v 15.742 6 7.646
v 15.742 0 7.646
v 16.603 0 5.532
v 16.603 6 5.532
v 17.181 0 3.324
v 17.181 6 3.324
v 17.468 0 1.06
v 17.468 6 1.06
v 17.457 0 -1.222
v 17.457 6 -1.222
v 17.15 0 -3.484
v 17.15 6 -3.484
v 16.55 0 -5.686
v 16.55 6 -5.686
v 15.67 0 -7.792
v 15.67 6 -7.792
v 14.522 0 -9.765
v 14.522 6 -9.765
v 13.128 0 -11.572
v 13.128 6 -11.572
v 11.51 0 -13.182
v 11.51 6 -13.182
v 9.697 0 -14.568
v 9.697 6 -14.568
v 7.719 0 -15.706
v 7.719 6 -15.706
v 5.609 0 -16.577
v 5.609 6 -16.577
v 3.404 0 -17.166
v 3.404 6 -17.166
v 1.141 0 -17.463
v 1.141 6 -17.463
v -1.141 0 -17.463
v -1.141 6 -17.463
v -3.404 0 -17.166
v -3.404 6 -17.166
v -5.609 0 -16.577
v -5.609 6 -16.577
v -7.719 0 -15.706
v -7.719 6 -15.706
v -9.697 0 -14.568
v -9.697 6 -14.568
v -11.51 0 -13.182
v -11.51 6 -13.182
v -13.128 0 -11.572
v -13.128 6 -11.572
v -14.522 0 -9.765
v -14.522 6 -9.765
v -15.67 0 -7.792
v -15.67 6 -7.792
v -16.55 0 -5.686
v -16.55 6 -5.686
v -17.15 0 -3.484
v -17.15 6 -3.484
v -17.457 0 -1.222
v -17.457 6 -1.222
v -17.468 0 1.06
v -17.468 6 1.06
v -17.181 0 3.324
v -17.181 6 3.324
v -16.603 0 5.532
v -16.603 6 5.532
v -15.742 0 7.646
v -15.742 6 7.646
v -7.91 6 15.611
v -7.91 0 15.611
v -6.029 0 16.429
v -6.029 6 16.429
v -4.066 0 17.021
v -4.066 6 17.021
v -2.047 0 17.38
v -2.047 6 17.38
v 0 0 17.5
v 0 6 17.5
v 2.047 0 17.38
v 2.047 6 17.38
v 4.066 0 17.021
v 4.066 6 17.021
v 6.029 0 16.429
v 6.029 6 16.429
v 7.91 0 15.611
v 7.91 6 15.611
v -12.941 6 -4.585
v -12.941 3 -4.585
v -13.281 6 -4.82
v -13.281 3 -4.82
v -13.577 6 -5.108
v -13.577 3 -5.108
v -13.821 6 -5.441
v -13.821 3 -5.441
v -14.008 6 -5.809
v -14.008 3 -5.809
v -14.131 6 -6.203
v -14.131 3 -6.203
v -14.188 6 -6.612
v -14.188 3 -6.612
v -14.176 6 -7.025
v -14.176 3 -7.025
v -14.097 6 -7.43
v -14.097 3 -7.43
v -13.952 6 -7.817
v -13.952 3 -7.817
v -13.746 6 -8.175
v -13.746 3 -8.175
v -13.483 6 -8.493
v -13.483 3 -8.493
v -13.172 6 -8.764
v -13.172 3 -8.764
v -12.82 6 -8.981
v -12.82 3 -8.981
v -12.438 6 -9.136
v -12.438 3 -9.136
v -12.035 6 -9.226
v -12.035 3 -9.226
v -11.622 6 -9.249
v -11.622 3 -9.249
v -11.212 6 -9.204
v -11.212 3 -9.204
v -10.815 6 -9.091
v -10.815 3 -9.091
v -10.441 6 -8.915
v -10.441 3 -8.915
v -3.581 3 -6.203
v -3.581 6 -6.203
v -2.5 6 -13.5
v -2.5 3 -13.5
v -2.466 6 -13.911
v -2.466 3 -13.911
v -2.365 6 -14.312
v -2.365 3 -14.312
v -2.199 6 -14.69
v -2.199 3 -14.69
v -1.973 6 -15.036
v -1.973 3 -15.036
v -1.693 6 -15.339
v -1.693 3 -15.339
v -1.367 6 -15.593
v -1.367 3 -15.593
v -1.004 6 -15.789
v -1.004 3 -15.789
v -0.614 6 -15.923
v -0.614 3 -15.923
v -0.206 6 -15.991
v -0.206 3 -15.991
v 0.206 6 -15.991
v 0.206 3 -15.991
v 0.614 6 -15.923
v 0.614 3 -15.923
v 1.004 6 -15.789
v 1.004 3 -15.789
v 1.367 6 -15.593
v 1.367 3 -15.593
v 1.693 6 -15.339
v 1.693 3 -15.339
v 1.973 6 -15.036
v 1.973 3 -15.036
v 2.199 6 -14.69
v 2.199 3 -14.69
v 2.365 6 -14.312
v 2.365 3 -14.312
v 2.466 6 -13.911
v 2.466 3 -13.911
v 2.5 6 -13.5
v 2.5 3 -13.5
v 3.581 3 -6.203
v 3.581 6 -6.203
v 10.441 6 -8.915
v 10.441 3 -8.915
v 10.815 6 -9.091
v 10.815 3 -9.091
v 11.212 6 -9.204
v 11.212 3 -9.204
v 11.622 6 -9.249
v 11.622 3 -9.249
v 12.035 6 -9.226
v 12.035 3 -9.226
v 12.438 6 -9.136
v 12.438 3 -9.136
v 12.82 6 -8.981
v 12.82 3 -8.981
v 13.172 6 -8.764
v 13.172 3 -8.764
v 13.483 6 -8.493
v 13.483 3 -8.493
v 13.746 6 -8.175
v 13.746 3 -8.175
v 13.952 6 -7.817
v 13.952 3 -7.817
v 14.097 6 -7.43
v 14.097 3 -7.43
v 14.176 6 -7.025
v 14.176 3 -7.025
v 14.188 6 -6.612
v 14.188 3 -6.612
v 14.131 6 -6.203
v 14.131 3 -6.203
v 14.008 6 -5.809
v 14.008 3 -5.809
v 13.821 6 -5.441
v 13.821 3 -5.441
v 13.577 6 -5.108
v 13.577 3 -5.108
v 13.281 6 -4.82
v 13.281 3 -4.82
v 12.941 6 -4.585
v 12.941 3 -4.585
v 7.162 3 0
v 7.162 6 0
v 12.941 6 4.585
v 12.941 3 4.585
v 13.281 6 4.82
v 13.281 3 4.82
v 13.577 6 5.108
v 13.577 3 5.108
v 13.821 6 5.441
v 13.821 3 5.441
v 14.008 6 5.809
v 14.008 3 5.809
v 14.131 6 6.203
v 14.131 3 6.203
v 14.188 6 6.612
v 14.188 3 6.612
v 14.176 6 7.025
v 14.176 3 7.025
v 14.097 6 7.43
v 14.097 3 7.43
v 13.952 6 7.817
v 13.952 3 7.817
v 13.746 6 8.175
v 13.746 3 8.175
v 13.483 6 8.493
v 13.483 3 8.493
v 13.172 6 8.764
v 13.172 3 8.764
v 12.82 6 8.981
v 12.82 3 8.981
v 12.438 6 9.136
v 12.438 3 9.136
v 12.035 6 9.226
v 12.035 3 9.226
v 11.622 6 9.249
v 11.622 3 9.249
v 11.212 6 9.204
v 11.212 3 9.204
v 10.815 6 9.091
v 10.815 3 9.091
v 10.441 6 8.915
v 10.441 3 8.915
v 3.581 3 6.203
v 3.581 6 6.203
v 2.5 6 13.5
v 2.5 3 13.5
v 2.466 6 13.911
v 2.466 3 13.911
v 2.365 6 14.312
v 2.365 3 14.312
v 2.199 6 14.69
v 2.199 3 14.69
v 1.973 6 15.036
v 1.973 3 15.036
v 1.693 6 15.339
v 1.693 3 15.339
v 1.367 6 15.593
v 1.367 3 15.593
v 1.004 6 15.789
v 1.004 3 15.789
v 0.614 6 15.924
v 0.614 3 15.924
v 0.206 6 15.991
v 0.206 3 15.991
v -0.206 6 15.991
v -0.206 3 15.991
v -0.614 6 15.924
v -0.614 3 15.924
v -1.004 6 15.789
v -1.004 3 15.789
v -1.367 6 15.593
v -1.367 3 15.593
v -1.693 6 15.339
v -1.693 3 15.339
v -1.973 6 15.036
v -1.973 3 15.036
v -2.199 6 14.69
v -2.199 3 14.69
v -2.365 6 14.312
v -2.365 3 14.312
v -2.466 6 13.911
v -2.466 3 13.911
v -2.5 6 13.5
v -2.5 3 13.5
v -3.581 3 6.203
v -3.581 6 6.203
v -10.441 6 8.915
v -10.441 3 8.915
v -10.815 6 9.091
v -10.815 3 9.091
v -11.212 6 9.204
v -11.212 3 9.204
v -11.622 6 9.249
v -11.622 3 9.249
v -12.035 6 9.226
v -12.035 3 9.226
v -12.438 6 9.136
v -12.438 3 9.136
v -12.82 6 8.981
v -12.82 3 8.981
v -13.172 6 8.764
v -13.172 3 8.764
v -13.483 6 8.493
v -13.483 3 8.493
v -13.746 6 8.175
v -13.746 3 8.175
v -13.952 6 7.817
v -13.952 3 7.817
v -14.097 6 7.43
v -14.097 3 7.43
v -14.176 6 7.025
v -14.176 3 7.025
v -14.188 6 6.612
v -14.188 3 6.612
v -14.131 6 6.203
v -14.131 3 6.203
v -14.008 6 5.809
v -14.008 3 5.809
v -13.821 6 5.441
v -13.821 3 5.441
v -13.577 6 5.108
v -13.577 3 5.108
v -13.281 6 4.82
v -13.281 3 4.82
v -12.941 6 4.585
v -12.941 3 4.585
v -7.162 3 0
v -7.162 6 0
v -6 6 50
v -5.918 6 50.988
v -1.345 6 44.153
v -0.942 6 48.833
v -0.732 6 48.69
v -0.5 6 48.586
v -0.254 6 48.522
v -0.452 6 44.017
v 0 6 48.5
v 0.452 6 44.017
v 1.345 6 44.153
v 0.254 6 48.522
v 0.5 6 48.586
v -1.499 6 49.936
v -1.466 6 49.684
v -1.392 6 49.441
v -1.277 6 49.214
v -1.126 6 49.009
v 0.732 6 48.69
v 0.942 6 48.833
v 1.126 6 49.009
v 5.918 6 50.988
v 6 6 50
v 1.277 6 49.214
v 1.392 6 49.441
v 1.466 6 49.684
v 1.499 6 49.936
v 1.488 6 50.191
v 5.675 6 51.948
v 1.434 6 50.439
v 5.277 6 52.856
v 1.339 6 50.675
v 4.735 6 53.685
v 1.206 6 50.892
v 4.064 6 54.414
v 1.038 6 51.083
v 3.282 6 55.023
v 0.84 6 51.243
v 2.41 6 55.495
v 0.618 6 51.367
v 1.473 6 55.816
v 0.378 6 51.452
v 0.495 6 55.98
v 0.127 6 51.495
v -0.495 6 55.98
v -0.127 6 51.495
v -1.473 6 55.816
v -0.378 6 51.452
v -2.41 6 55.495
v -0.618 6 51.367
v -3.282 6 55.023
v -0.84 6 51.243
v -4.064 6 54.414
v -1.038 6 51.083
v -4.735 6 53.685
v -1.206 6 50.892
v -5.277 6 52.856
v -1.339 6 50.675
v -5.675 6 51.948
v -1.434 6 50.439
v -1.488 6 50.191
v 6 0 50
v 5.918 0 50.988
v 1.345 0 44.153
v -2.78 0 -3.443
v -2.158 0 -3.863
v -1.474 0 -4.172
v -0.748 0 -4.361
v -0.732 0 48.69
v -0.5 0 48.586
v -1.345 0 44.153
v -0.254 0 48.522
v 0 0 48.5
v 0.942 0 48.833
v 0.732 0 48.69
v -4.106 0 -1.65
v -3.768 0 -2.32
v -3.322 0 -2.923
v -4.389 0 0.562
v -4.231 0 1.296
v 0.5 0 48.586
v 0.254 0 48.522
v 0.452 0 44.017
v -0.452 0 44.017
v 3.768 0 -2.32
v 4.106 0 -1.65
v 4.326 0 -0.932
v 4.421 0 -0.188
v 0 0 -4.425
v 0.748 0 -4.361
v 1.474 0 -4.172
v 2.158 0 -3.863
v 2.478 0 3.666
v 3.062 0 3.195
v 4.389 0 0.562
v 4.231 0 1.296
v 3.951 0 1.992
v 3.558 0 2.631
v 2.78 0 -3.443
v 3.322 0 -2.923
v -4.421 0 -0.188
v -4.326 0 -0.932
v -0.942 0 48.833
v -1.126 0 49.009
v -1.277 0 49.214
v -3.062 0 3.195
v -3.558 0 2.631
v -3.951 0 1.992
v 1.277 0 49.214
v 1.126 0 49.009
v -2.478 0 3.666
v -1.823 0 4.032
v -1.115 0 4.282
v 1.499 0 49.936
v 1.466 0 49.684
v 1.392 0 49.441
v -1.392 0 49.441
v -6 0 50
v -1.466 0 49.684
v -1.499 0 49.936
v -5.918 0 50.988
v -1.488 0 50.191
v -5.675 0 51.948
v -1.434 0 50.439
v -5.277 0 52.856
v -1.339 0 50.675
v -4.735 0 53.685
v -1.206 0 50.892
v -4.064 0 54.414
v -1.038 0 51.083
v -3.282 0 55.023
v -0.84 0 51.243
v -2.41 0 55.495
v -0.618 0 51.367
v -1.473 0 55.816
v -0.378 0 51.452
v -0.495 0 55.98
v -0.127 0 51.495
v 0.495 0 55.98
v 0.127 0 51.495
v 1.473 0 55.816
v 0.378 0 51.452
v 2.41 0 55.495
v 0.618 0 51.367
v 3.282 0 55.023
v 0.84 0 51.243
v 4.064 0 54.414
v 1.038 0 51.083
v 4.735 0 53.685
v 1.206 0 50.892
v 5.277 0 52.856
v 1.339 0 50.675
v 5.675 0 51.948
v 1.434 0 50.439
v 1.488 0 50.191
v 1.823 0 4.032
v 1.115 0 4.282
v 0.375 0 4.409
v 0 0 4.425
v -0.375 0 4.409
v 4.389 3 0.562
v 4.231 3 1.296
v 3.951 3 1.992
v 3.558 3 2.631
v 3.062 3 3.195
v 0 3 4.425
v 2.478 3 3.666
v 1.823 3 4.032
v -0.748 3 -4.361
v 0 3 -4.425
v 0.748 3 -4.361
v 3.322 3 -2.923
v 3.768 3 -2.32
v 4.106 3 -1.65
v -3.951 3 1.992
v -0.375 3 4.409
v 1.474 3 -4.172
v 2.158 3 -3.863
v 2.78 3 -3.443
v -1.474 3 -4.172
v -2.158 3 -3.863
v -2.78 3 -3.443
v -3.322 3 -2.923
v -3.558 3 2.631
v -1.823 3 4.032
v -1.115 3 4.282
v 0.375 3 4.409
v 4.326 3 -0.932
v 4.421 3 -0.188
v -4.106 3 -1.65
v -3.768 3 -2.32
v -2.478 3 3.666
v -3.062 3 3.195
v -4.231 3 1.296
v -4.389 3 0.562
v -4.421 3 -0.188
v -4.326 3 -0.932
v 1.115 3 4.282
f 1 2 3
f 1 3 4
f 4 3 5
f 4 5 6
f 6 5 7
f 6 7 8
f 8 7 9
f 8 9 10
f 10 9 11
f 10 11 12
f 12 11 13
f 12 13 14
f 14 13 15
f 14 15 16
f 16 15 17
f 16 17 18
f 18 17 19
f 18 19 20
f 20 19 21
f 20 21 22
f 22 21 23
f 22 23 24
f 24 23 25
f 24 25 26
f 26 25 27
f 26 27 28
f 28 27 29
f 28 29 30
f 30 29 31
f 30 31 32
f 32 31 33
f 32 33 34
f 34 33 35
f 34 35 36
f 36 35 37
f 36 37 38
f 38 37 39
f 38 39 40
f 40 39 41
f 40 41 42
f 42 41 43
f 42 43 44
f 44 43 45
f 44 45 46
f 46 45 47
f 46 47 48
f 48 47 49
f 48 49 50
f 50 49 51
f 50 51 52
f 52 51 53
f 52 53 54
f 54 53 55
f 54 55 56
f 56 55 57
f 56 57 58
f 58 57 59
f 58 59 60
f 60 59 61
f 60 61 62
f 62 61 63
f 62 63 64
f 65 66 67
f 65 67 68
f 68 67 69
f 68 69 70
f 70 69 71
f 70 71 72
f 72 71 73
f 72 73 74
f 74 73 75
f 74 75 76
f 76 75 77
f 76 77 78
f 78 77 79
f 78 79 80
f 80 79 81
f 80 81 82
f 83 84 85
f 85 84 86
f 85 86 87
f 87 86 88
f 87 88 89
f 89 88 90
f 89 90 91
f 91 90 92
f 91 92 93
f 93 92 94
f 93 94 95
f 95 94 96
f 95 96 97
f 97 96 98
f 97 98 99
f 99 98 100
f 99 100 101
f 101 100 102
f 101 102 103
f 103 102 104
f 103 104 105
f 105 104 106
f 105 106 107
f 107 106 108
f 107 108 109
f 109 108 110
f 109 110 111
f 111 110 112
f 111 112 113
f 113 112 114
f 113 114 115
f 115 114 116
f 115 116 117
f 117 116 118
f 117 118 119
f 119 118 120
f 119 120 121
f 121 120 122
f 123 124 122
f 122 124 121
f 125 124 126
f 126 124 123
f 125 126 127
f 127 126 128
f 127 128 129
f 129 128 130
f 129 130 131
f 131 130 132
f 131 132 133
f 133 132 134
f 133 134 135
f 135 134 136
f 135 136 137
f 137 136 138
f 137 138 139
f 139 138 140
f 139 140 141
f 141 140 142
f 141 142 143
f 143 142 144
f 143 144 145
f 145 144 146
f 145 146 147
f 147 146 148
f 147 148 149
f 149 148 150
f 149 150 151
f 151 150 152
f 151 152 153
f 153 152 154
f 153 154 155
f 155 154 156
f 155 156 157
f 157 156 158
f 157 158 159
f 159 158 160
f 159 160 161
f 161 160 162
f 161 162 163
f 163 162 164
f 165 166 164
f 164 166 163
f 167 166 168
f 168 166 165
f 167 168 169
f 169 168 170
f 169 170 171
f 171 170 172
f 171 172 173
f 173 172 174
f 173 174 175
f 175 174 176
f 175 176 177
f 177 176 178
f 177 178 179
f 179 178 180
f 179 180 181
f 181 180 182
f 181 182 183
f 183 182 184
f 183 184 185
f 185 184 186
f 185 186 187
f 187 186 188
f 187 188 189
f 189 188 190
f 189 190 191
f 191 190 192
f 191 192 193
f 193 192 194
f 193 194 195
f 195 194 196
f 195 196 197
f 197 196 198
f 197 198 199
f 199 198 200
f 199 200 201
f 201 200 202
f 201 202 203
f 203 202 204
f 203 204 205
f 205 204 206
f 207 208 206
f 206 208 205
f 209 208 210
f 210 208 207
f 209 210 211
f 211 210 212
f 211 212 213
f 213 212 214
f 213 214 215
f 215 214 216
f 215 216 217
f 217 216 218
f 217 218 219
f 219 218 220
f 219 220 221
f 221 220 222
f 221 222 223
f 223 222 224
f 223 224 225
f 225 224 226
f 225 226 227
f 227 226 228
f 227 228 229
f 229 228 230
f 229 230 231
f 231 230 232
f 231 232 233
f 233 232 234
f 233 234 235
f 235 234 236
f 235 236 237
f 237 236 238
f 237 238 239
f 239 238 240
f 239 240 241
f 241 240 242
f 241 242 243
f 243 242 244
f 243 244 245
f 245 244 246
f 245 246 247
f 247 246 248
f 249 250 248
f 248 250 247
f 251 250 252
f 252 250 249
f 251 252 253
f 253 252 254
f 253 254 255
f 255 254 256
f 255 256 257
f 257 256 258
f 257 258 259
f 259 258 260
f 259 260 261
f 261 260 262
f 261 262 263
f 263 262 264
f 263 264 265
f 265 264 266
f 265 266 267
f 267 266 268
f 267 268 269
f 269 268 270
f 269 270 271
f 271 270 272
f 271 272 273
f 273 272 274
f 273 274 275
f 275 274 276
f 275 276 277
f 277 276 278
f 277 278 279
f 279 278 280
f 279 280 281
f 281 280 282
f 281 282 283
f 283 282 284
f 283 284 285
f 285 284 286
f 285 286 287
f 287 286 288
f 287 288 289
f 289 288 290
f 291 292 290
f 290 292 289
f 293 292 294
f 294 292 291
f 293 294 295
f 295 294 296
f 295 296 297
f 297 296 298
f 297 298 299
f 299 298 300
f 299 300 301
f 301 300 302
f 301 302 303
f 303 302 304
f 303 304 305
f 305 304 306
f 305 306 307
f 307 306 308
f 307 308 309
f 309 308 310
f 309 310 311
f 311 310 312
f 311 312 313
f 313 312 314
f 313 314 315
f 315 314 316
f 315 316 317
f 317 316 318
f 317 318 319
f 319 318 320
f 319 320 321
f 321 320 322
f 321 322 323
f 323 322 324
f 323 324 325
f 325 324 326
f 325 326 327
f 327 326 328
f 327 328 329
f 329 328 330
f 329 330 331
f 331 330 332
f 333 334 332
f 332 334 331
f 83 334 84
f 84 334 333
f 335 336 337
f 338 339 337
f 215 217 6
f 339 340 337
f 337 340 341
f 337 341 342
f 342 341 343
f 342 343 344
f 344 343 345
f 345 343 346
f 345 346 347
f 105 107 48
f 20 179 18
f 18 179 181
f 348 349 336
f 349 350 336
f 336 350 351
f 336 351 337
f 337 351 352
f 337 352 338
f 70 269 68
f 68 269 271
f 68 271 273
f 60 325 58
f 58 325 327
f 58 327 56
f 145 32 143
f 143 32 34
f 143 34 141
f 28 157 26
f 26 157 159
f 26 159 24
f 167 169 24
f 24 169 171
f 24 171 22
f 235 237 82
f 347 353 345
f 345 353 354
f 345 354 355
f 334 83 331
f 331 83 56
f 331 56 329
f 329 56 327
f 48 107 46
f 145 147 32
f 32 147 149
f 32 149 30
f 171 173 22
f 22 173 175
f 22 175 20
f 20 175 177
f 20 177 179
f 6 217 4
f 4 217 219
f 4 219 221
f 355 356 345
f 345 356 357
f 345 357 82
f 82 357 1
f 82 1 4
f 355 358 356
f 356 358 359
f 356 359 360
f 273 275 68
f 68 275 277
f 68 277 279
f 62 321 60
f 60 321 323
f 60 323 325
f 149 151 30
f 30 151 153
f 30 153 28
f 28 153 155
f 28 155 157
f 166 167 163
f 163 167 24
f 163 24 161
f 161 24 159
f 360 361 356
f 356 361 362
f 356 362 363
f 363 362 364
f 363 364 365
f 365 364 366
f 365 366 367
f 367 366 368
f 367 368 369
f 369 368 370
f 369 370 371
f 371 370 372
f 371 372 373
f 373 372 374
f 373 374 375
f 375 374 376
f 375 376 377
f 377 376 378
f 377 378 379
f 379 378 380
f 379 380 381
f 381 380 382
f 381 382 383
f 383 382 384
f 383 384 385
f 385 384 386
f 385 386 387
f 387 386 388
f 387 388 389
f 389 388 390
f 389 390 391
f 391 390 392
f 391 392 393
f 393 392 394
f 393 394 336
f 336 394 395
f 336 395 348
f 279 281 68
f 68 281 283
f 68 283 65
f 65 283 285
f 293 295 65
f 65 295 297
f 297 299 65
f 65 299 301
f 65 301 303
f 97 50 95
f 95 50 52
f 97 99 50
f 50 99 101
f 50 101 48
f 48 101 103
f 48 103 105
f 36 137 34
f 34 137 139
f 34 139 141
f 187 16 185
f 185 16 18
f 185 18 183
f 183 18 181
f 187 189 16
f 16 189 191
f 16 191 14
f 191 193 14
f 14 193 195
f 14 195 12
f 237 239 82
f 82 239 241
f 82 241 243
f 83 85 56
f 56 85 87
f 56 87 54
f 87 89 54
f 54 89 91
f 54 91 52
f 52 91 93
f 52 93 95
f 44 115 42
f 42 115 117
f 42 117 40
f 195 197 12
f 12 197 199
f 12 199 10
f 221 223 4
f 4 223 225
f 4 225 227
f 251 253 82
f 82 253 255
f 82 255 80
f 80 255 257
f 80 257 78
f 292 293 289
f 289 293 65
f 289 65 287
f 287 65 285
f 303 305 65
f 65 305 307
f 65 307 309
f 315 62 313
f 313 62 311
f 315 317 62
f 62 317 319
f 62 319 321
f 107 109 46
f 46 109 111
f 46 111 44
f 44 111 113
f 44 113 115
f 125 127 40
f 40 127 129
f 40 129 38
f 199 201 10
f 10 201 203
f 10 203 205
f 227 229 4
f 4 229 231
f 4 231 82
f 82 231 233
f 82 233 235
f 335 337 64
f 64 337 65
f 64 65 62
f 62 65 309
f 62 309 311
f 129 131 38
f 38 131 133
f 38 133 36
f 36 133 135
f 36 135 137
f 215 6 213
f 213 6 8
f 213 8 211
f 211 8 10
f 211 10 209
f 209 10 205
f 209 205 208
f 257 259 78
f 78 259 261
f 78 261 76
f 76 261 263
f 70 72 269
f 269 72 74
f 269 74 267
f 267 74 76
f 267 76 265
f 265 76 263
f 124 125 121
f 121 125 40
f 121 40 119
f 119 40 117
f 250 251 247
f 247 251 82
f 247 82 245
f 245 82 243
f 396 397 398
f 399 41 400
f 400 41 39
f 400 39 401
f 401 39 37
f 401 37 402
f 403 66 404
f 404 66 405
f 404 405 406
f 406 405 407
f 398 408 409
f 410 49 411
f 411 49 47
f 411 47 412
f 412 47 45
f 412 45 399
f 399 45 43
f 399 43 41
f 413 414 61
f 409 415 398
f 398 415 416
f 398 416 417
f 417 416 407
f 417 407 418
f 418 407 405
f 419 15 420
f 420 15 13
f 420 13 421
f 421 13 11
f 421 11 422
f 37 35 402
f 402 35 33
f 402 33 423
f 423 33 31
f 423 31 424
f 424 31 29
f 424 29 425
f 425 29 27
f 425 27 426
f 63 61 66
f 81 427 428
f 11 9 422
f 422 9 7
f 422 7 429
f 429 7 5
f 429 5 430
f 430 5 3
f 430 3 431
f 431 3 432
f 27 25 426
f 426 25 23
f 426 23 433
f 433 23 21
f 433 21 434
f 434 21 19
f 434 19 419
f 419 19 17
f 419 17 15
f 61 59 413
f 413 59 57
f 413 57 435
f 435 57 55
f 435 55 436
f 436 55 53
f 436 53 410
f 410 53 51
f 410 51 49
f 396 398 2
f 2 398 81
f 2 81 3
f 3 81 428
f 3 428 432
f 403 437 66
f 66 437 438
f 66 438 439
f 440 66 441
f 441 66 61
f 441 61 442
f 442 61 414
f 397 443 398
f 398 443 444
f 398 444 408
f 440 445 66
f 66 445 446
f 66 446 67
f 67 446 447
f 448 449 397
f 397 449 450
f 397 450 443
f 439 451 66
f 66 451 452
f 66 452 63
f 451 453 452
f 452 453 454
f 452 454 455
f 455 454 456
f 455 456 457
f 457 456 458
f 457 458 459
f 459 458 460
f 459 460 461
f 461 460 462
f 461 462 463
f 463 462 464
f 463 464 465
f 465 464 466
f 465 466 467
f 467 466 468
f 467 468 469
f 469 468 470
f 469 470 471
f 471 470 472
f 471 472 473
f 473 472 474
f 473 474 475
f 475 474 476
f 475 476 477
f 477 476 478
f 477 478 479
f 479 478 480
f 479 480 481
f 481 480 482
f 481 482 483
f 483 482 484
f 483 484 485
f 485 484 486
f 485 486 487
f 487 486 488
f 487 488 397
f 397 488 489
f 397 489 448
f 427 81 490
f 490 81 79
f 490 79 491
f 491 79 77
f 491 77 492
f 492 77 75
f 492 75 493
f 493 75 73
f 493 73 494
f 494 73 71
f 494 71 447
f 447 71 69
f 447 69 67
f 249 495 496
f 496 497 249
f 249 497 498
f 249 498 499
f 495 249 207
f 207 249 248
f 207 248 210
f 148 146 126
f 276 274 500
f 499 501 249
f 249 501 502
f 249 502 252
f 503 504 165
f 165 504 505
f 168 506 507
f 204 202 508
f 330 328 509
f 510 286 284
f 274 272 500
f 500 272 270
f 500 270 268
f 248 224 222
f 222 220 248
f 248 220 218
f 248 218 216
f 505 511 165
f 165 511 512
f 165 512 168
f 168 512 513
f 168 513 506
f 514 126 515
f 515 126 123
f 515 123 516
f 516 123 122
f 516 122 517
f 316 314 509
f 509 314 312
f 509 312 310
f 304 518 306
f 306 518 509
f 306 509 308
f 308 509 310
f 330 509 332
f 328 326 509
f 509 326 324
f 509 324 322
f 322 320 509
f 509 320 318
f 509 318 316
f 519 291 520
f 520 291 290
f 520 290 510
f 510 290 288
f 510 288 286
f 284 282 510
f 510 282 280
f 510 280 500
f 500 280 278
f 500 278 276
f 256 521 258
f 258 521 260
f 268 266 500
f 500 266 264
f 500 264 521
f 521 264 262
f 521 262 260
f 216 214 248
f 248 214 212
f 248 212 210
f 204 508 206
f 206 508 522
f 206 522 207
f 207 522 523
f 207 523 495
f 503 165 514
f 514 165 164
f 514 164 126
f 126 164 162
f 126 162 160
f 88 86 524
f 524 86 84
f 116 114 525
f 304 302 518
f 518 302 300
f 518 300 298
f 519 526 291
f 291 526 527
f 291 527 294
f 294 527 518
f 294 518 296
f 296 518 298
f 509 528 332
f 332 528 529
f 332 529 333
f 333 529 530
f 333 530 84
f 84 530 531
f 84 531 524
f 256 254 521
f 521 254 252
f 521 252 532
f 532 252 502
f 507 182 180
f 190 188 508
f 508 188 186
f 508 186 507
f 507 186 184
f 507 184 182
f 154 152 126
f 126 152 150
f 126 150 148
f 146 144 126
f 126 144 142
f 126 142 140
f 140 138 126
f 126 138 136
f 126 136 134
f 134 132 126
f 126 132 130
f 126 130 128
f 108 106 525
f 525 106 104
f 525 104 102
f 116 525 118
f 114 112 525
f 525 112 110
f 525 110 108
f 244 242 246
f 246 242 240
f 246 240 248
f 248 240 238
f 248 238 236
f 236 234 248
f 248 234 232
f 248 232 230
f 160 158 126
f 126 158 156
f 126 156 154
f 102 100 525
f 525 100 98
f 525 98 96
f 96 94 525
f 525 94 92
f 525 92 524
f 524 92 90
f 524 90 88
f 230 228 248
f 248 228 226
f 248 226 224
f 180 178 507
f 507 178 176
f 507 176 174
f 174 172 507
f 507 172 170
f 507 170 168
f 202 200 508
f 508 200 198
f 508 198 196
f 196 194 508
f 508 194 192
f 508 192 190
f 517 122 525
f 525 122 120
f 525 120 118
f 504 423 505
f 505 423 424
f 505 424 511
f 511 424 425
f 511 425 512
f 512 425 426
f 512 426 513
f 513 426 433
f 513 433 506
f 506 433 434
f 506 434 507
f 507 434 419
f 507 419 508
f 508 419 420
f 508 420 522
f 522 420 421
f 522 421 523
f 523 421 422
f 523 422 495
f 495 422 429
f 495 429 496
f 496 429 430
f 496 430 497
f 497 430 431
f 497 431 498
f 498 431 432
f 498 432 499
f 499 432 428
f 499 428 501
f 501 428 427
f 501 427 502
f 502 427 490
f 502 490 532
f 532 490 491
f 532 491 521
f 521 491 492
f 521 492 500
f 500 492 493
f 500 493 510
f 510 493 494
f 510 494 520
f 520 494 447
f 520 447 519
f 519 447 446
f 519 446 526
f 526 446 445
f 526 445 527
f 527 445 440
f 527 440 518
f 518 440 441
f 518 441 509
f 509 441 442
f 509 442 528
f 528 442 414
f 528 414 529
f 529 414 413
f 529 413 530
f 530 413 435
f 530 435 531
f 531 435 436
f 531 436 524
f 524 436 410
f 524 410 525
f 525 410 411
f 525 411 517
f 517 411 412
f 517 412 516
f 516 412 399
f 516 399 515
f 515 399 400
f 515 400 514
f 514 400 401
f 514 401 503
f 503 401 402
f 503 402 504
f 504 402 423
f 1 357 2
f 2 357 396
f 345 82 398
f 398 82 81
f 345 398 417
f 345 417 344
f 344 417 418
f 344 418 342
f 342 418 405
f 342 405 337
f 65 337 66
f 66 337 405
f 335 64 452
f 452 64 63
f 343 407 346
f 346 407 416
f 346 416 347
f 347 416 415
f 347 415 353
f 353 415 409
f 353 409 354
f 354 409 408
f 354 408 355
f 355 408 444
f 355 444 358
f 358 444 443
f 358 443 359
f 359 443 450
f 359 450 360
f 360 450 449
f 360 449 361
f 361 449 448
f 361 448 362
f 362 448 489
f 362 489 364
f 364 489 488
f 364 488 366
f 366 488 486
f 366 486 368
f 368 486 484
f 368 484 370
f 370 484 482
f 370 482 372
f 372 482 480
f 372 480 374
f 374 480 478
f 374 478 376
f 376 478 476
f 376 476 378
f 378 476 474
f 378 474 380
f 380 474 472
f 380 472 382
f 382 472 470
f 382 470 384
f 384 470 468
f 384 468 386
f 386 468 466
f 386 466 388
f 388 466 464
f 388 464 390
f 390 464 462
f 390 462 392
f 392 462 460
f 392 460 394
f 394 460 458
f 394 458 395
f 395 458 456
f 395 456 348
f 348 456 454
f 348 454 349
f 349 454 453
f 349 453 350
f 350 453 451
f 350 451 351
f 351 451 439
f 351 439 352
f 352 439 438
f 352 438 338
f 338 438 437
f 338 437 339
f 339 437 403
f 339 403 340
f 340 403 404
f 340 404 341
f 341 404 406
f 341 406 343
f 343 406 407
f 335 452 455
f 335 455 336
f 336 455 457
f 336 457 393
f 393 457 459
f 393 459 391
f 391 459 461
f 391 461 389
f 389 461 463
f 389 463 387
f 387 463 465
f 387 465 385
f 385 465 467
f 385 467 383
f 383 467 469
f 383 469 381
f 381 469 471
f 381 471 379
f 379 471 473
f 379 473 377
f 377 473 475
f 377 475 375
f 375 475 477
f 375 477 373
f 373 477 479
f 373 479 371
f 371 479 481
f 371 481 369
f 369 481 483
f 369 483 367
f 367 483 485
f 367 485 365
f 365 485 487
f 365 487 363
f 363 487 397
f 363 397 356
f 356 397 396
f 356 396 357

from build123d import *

# Parameters (mm, degrees)
SKETCH1_R           = 17.5
BOSS_EXTRUDE3_DEPTH = 6
SKETCH1_11_R        = 4.425
BOSS_EXTRUDE5_DEPTH = 3
SKETCH2_R           = 1.5
BOSS_EXTRUDE6_DEPTH = 6


with BuildPart() as part:
    # Sketch1 → Boss-Extrude3 (new body)
    with BuildSketch(Plane(origin=(0, 0, 0), x_dir=(1, 0, 0), z_dir=(0, 1, 0))):
        Circle(SKETCH1_R)
        with BuildLine():
            ThreePointArc((-2.5, 13.5), (-1.767766953, 15.267766953), (0, 16))
            ThreePointArc((0, 16), (1.767766953, 15.267766953), (2.5, 13.5))
            Line((2.5, 13.5), (3.581091494, 6.202632414))
            Line((3.581091494, 6.202632414), (10.441342951, 8.915063509))
            ThreePointArc((10.441342951, 8.915063509), (12.338390564, 9.164814566), (13.856406461, 8))
            ThreePointArc((13.856406461, 8), (14.106157517, 7.397047613), (14.191342951, 6.75))
            ThreePointArc((14.191342951, 6.75), (13.856406461, 5.5), (12.941342951, 4.584936491))
            Line((12.941342951, 4.584936491), (7.162182988, 0))
            Line((7.162182988, 0), (12.941342951, -4.584936491))
            ThreePointArc((12.941342951, -4.584936491), (13.856406461, -5.5), (14.191342951, -6.75))
            ThreePointArc((14.191342951, -6.75), (14.106157517, -7.397047613), (13.856406461, -8))
            ThreePointArc((13.856406461, -8), (12.338390564, -9.164814566), (10.441342951, -8.915063509))
            Line((10.441342951, -8.915063509), (3.581091494, -6.202632414))
            Line((3.581091494, -6.202632414), (2.5, -13.5))
            ThreePointArc((2.5, -13.5), (1.767766953, -15.267766953), (0, -16))
            ThreePointArc((0, -16), (-1.767766953, -15.267766953), (-2.5, -13.5))
            Line((-2.5, -13.5), (-3.581091494, -6.202632414))
            Line((-3.581091494, -6.202632414), (-10.441342951, -8.915063509))
            ThreePointArc((-10.441342951, -8.915063509), (-12.338390564, -9.164814566), (-13.856406461, -8))
            ThreePointArc((-13.856406461, -8), (-14.106157517, -6.102952387), (-12.941342951, -4.584936491))
            Line((-12.941342951, -4.584936491), (-7.162182988, 0))
            Line((-7.162182988, 0), (-12.941342951, 4.584936491))
            ThreePointArc((-12.941342951, 4.584936491), (-14.106157517, 6.102952387), (-13.856406461, 8))
            ThreePointArc((-13.856406461, 8), (-12.338390564, 9.164814566), (-10.441342951, 8.915063509))
            Line((-10.441342951, 8.915063509), (-3.581091494, 6.202632414))
            Line((-3.581091494, 6.202632414), (-2.5, 13.5))
        make_face(mode=Mode.SUBTRACT)
    extrude(amount=BOSS_EXTRUDE3_DEPTH)

    # Sketch1<11> → Boss-Extrude5 (add)
    with BuildSketch(Plane(origin=(0, 0, 0), x_dir=(1, 0, 0), z_dir=(0, 1, 0))):
        with BuildLine():
            Line((-2.5, 13.5), (-3.581091494, 6.202632414))
            Line((-3.581091494, 6.202632414), (-10.441342951, 8.915063509))
            ThreePointArc((-10.441342951, 8.915063509), (-13.856406461, 8), (-12.941342951, 4.584936491))
            Line((-12.941342951, 4.584936491), (-7.162182988, 0))
            Line((-7.162182988, 0), (-12.941342951, -4.584936491))
            ThreePointArc((-12.941342951, -4.584936491), (-13.856406461, -8), (-10.441342951, -8.915063509))
            Line((-10.441342951, -8.915063509), (-3.581091494, -6.202632414))
            Line((-3.581091494, -6.202632414), (-2.5, -13.5))
            ThreePointArc((-2.5, -13.5), (0, -16), (2.5, -13.5))
            Line((2.5, -13.5), (3.581091494, -6.202632414))
            Line((3.581091494, -6.202632414), (10.441342951, -8.915063509))
            ThreePointArc((10.441342951, -8.915063509), (13.856406461, -8), (12.941342951, -4.584936491))
            Line((12.941342951, -4.584936491), (7.162182988, 0))
            Line((7.162182988, 0), (12.941342951, 4.584936491))
            ThreePointArc((12.941342951, 4.584936491), (13.856406461, 8), (10.441342951, 8.915063509))
            Line((10.441342951, 8.915063509), (3.581091494, 6.202632414))
            Line((3.581091494, 6.202632414), (2.5, 13.5))
            ThreePointArc((2.5, 13.5), (0, 16), (-2.5, 13.5))
        make_face()
        Circle(SKETCH1_11_R, mode=Mode.SUBTRACT)
    extrude(amount=BOSS_EXTRUDE5_DEPTH)

    # Sketch2 → Boss-Extrude6 (add)
    with BuildSketch(Plane.XZ):
        with BuildLine():
            ThreePointArc((-1.344886158, 44.15266888), (0, 44), (1.344886158, 44.15266888))
            Line((1.344886158, 44.15266888), (7.909578705, 15.610527368))
            ThreePointArc((7.909578705, 15.610527368), (12.478135775, 12.269724022), (15.741523412, 7.645550385))
            Line((15.741523412, 7.645550385), (6, 50))
            ThreePointArc((6, 50), (0, 56), (-6, 50))
            Line((-6, 50), (-15.741523412, 7.645550385))
            ThreePointArc((-15.741523412, 7.645550385), (-12.478135775, 12.269724022), (-7.909578705, 15.610527368))
            Line((-7.909578705, 15.610527368), (-1.344886158, 44.15266888))
        make_face()
        with Locations((0, 50)):
            Circle(SKETCH2_R, mode=Mode.SUBTRACT)
    extrude(amount=-BOSS_EXTRUDE6_DEPTH)


solid = part.part
